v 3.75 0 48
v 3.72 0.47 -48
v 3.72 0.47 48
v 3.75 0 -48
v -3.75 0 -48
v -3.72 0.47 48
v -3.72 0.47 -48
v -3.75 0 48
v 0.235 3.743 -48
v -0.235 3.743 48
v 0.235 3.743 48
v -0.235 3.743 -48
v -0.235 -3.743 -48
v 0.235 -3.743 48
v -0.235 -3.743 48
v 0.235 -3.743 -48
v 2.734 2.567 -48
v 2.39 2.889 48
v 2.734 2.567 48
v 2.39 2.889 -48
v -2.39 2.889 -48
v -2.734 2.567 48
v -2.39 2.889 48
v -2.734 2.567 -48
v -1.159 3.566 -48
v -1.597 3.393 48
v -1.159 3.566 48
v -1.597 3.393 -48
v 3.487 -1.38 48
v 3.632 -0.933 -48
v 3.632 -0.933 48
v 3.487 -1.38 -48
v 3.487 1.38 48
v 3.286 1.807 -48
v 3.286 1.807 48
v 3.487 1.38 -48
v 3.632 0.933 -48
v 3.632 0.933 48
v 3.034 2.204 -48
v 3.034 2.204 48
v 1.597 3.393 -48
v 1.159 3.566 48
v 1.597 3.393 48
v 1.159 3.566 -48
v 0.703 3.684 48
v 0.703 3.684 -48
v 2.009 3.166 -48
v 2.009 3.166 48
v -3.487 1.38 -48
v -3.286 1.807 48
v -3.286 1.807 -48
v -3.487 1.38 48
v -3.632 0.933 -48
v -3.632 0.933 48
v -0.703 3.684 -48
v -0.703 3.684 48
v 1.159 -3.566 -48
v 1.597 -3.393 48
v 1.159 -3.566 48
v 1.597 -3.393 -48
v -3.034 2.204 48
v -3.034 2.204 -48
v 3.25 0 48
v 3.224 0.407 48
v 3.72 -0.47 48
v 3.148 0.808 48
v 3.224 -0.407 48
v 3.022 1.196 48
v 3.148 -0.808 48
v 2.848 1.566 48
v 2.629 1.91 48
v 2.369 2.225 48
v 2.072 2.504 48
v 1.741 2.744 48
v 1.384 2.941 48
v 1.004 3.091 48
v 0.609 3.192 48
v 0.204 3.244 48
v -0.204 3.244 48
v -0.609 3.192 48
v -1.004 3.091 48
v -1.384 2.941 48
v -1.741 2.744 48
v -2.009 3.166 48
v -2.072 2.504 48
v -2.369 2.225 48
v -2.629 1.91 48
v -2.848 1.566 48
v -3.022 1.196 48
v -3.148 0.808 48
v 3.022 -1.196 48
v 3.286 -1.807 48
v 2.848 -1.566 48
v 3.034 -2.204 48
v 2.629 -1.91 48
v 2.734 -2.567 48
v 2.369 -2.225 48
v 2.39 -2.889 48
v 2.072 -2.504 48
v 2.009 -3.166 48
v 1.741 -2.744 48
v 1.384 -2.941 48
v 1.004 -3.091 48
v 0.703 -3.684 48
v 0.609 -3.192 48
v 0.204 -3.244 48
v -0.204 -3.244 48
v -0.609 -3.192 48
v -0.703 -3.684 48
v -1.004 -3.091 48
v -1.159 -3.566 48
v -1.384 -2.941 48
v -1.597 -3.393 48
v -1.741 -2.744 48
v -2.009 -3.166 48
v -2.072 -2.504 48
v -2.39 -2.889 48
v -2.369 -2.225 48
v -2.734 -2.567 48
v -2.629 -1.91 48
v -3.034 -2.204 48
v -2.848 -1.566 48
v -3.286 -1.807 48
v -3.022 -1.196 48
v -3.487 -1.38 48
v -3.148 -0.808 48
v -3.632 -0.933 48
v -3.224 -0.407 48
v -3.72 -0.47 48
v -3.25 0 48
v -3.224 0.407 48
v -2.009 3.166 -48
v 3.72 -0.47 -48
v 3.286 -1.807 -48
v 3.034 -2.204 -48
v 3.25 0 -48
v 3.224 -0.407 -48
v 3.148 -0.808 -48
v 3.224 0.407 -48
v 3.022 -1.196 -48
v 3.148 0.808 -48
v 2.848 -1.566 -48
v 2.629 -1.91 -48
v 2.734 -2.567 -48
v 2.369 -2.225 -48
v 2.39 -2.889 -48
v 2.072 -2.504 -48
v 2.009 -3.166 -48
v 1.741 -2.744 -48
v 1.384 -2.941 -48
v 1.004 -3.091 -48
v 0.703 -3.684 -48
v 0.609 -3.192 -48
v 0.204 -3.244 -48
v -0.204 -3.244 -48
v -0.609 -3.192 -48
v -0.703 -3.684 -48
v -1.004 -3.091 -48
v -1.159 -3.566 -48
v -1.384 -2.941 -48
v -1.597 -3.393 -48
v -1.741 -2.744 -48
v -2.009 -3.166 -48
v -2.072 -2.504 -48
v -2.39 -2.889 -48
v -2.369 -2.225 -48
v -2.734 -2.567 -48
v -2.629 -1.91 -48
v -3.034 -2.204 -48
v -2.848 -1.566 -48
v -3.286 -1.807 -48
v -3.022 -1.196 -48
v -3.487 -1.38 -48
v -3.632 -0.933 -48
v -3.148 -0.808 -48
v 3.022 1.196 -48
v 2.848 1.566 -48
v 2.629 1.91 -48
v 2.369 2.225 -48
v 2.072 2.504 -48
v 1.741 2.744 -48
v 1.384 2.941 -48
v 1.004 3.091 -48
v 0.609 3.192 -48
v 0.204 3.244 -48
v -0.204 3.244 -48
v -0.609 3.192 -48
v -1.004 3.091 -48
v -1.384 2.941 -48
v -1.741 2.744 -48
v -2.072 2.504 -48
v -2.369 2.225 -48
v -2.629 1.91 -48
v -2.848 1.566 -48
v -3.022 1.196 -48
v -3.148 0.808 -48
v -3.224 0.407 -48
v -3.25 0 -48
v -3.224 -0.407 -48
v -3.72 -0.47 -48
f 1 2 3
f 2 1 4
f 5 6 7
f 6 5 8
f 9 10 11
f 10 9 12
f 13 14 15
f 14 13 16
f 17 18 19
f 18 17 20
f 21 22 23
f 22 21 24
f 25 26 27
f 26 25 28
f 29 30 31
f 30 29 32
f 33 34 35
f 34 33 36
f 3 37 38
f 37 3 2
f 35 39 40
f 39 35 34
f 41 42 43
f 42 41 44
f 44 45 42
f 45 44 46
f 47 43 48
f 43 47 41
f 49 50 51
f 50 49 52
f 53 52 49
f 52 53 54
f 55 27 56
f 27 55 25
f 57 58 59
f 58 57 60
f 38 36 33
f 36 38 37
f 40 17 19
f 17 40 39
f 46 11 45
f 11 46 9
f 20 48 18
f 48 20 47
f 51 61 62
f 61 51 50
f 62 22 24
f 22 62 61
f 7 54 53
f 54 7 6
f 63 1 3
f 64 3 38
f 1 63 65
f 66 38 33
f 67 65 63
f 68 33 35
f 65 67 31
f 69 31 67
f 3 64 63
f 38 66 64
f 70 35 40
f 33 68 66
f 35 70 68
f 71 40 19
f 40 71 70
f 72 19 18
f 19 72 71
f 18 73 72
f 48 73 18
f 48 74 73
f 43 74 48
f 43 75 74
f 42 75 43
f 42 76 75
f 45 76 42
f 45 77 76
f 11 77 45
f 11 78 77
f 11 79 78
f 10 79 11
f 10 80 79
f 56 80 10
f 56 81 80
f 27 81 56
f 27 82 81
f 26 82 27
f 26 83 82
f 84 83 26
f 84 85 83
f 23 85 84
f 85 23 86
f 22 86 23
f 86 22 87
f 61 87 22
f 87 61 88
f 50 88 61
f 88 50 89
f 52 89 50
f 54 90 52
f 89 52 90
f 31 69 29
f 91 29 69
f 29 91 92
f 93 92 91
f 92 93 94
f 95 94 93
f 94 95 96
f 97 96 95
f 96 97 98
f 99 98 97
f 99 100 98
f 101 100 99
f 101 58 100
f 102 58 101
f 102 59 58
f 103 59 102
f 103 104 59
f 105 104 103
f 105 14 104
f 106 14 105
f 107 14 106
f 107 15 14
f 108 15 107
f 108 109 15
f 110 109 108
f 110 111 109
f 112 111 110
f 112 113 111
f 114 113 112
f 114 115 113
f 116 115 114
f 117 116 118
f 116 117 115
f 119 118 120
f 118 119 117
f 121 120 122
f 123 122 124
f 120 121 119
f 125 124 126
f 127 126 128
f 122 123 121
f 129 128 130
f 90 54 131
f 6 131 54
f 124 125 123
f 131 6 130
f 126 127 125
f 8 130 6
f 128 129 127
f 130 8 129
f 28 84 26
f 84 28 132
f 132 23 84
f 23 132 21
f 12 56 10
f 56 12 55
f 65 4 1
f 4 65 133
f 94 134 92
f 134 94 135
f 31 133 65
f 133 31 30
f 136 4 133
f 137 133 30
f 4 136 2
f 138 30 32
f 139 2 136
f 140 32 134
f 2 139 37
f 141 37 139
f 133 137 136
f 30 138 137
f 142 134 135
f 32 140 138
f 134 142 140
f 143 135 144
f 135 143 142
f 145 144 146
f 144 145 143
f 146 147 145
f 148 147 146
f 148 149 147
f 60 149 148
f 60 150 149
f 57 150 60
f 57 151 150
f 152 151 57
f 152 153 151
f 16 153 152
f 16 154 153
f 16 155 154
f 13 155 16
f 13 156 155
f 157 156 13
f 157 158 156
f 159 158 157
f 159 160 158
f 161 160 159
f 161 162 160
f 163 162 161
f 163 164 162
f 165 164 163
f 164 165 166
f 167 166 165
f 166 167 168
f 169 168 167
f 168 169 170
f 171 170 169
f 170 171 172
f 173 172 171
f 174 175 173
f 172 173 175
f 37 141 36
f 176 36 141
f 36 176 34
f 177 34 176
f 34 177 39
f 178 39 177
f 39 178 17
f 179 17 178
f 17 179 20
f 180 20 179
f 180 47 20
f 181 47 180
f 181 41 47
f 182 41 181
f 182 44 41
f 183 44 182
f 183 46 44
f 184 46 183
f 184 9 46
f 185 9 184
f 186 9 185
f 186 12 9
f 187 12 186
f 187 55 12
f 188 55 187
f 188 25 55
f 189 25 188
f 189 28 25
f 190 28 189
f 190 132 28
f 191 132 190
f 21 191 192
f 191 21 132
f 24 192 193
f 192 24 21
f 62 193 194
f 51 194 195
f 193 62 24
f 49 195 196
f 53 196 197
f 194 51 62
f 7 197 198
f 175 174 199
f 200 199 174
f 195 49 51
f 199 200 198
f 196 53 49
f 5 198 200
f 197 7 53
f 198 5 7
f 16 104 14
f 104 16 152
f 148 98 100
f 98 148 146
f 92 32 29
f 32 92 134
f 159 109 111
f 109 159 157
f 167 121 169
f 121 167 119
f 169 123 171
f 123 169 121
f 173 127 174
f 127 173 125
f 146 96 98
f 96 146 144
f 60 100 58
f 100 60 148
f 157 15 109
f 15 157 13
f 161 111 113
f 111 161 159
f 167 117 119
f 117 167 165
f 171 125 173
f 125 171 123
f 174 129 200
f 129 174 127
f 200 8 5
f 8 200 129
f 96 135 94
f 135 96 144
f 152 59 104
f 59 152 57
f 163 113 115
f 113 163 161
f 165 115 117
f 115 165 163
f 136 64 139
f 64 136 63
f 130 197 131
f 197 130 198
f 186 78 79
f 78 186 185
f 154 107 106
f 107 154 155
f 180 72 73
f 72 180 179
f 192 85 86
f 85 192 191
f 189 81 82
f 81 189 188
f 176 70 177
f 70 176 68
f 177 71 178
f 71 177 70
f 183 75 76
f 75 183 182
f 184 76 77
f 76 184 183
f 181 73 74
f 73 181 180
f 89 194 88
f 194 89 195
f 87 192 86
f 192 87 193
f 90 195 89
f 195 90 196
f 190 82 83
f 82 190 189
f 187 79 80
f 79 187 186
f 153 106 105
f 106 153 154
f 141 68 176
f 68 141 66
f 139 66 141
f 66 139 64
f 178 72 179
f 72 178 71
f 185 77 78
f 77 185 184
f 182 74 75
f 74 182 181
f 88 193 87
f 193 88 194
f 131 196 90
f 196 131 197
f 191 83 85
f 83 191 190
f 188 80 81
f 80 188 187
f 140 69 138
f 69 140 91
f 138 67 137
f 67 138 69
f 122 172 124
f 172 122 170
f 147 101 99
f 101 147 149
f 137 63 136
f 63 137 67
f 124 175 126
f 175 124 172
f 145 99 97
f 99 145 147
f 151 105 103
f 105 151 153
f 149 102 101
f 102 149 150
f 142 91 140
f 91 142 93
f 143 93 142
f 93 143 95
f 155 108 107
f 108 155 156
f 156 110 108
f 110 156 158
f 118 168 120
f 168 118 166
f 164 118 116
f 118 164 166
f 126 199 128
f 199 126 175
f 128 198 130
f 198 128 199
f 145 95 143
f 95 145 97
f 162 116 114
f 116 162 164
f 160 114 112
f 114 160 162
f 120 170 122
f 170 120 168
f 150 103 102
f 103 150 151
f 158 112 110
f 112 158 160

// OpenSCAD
$fn = 50;


difference() {
	union() {
		translate(v = [0, 0, -48.0000000000]) {
			cylinder(h = 96, r = 3.7500000000);
		}
	}
	union() {
		translate(v = [0, 0, -100.0000000000]) {
			cylinder(h = 200, r = 3.2500000000);
		}
	}
}
